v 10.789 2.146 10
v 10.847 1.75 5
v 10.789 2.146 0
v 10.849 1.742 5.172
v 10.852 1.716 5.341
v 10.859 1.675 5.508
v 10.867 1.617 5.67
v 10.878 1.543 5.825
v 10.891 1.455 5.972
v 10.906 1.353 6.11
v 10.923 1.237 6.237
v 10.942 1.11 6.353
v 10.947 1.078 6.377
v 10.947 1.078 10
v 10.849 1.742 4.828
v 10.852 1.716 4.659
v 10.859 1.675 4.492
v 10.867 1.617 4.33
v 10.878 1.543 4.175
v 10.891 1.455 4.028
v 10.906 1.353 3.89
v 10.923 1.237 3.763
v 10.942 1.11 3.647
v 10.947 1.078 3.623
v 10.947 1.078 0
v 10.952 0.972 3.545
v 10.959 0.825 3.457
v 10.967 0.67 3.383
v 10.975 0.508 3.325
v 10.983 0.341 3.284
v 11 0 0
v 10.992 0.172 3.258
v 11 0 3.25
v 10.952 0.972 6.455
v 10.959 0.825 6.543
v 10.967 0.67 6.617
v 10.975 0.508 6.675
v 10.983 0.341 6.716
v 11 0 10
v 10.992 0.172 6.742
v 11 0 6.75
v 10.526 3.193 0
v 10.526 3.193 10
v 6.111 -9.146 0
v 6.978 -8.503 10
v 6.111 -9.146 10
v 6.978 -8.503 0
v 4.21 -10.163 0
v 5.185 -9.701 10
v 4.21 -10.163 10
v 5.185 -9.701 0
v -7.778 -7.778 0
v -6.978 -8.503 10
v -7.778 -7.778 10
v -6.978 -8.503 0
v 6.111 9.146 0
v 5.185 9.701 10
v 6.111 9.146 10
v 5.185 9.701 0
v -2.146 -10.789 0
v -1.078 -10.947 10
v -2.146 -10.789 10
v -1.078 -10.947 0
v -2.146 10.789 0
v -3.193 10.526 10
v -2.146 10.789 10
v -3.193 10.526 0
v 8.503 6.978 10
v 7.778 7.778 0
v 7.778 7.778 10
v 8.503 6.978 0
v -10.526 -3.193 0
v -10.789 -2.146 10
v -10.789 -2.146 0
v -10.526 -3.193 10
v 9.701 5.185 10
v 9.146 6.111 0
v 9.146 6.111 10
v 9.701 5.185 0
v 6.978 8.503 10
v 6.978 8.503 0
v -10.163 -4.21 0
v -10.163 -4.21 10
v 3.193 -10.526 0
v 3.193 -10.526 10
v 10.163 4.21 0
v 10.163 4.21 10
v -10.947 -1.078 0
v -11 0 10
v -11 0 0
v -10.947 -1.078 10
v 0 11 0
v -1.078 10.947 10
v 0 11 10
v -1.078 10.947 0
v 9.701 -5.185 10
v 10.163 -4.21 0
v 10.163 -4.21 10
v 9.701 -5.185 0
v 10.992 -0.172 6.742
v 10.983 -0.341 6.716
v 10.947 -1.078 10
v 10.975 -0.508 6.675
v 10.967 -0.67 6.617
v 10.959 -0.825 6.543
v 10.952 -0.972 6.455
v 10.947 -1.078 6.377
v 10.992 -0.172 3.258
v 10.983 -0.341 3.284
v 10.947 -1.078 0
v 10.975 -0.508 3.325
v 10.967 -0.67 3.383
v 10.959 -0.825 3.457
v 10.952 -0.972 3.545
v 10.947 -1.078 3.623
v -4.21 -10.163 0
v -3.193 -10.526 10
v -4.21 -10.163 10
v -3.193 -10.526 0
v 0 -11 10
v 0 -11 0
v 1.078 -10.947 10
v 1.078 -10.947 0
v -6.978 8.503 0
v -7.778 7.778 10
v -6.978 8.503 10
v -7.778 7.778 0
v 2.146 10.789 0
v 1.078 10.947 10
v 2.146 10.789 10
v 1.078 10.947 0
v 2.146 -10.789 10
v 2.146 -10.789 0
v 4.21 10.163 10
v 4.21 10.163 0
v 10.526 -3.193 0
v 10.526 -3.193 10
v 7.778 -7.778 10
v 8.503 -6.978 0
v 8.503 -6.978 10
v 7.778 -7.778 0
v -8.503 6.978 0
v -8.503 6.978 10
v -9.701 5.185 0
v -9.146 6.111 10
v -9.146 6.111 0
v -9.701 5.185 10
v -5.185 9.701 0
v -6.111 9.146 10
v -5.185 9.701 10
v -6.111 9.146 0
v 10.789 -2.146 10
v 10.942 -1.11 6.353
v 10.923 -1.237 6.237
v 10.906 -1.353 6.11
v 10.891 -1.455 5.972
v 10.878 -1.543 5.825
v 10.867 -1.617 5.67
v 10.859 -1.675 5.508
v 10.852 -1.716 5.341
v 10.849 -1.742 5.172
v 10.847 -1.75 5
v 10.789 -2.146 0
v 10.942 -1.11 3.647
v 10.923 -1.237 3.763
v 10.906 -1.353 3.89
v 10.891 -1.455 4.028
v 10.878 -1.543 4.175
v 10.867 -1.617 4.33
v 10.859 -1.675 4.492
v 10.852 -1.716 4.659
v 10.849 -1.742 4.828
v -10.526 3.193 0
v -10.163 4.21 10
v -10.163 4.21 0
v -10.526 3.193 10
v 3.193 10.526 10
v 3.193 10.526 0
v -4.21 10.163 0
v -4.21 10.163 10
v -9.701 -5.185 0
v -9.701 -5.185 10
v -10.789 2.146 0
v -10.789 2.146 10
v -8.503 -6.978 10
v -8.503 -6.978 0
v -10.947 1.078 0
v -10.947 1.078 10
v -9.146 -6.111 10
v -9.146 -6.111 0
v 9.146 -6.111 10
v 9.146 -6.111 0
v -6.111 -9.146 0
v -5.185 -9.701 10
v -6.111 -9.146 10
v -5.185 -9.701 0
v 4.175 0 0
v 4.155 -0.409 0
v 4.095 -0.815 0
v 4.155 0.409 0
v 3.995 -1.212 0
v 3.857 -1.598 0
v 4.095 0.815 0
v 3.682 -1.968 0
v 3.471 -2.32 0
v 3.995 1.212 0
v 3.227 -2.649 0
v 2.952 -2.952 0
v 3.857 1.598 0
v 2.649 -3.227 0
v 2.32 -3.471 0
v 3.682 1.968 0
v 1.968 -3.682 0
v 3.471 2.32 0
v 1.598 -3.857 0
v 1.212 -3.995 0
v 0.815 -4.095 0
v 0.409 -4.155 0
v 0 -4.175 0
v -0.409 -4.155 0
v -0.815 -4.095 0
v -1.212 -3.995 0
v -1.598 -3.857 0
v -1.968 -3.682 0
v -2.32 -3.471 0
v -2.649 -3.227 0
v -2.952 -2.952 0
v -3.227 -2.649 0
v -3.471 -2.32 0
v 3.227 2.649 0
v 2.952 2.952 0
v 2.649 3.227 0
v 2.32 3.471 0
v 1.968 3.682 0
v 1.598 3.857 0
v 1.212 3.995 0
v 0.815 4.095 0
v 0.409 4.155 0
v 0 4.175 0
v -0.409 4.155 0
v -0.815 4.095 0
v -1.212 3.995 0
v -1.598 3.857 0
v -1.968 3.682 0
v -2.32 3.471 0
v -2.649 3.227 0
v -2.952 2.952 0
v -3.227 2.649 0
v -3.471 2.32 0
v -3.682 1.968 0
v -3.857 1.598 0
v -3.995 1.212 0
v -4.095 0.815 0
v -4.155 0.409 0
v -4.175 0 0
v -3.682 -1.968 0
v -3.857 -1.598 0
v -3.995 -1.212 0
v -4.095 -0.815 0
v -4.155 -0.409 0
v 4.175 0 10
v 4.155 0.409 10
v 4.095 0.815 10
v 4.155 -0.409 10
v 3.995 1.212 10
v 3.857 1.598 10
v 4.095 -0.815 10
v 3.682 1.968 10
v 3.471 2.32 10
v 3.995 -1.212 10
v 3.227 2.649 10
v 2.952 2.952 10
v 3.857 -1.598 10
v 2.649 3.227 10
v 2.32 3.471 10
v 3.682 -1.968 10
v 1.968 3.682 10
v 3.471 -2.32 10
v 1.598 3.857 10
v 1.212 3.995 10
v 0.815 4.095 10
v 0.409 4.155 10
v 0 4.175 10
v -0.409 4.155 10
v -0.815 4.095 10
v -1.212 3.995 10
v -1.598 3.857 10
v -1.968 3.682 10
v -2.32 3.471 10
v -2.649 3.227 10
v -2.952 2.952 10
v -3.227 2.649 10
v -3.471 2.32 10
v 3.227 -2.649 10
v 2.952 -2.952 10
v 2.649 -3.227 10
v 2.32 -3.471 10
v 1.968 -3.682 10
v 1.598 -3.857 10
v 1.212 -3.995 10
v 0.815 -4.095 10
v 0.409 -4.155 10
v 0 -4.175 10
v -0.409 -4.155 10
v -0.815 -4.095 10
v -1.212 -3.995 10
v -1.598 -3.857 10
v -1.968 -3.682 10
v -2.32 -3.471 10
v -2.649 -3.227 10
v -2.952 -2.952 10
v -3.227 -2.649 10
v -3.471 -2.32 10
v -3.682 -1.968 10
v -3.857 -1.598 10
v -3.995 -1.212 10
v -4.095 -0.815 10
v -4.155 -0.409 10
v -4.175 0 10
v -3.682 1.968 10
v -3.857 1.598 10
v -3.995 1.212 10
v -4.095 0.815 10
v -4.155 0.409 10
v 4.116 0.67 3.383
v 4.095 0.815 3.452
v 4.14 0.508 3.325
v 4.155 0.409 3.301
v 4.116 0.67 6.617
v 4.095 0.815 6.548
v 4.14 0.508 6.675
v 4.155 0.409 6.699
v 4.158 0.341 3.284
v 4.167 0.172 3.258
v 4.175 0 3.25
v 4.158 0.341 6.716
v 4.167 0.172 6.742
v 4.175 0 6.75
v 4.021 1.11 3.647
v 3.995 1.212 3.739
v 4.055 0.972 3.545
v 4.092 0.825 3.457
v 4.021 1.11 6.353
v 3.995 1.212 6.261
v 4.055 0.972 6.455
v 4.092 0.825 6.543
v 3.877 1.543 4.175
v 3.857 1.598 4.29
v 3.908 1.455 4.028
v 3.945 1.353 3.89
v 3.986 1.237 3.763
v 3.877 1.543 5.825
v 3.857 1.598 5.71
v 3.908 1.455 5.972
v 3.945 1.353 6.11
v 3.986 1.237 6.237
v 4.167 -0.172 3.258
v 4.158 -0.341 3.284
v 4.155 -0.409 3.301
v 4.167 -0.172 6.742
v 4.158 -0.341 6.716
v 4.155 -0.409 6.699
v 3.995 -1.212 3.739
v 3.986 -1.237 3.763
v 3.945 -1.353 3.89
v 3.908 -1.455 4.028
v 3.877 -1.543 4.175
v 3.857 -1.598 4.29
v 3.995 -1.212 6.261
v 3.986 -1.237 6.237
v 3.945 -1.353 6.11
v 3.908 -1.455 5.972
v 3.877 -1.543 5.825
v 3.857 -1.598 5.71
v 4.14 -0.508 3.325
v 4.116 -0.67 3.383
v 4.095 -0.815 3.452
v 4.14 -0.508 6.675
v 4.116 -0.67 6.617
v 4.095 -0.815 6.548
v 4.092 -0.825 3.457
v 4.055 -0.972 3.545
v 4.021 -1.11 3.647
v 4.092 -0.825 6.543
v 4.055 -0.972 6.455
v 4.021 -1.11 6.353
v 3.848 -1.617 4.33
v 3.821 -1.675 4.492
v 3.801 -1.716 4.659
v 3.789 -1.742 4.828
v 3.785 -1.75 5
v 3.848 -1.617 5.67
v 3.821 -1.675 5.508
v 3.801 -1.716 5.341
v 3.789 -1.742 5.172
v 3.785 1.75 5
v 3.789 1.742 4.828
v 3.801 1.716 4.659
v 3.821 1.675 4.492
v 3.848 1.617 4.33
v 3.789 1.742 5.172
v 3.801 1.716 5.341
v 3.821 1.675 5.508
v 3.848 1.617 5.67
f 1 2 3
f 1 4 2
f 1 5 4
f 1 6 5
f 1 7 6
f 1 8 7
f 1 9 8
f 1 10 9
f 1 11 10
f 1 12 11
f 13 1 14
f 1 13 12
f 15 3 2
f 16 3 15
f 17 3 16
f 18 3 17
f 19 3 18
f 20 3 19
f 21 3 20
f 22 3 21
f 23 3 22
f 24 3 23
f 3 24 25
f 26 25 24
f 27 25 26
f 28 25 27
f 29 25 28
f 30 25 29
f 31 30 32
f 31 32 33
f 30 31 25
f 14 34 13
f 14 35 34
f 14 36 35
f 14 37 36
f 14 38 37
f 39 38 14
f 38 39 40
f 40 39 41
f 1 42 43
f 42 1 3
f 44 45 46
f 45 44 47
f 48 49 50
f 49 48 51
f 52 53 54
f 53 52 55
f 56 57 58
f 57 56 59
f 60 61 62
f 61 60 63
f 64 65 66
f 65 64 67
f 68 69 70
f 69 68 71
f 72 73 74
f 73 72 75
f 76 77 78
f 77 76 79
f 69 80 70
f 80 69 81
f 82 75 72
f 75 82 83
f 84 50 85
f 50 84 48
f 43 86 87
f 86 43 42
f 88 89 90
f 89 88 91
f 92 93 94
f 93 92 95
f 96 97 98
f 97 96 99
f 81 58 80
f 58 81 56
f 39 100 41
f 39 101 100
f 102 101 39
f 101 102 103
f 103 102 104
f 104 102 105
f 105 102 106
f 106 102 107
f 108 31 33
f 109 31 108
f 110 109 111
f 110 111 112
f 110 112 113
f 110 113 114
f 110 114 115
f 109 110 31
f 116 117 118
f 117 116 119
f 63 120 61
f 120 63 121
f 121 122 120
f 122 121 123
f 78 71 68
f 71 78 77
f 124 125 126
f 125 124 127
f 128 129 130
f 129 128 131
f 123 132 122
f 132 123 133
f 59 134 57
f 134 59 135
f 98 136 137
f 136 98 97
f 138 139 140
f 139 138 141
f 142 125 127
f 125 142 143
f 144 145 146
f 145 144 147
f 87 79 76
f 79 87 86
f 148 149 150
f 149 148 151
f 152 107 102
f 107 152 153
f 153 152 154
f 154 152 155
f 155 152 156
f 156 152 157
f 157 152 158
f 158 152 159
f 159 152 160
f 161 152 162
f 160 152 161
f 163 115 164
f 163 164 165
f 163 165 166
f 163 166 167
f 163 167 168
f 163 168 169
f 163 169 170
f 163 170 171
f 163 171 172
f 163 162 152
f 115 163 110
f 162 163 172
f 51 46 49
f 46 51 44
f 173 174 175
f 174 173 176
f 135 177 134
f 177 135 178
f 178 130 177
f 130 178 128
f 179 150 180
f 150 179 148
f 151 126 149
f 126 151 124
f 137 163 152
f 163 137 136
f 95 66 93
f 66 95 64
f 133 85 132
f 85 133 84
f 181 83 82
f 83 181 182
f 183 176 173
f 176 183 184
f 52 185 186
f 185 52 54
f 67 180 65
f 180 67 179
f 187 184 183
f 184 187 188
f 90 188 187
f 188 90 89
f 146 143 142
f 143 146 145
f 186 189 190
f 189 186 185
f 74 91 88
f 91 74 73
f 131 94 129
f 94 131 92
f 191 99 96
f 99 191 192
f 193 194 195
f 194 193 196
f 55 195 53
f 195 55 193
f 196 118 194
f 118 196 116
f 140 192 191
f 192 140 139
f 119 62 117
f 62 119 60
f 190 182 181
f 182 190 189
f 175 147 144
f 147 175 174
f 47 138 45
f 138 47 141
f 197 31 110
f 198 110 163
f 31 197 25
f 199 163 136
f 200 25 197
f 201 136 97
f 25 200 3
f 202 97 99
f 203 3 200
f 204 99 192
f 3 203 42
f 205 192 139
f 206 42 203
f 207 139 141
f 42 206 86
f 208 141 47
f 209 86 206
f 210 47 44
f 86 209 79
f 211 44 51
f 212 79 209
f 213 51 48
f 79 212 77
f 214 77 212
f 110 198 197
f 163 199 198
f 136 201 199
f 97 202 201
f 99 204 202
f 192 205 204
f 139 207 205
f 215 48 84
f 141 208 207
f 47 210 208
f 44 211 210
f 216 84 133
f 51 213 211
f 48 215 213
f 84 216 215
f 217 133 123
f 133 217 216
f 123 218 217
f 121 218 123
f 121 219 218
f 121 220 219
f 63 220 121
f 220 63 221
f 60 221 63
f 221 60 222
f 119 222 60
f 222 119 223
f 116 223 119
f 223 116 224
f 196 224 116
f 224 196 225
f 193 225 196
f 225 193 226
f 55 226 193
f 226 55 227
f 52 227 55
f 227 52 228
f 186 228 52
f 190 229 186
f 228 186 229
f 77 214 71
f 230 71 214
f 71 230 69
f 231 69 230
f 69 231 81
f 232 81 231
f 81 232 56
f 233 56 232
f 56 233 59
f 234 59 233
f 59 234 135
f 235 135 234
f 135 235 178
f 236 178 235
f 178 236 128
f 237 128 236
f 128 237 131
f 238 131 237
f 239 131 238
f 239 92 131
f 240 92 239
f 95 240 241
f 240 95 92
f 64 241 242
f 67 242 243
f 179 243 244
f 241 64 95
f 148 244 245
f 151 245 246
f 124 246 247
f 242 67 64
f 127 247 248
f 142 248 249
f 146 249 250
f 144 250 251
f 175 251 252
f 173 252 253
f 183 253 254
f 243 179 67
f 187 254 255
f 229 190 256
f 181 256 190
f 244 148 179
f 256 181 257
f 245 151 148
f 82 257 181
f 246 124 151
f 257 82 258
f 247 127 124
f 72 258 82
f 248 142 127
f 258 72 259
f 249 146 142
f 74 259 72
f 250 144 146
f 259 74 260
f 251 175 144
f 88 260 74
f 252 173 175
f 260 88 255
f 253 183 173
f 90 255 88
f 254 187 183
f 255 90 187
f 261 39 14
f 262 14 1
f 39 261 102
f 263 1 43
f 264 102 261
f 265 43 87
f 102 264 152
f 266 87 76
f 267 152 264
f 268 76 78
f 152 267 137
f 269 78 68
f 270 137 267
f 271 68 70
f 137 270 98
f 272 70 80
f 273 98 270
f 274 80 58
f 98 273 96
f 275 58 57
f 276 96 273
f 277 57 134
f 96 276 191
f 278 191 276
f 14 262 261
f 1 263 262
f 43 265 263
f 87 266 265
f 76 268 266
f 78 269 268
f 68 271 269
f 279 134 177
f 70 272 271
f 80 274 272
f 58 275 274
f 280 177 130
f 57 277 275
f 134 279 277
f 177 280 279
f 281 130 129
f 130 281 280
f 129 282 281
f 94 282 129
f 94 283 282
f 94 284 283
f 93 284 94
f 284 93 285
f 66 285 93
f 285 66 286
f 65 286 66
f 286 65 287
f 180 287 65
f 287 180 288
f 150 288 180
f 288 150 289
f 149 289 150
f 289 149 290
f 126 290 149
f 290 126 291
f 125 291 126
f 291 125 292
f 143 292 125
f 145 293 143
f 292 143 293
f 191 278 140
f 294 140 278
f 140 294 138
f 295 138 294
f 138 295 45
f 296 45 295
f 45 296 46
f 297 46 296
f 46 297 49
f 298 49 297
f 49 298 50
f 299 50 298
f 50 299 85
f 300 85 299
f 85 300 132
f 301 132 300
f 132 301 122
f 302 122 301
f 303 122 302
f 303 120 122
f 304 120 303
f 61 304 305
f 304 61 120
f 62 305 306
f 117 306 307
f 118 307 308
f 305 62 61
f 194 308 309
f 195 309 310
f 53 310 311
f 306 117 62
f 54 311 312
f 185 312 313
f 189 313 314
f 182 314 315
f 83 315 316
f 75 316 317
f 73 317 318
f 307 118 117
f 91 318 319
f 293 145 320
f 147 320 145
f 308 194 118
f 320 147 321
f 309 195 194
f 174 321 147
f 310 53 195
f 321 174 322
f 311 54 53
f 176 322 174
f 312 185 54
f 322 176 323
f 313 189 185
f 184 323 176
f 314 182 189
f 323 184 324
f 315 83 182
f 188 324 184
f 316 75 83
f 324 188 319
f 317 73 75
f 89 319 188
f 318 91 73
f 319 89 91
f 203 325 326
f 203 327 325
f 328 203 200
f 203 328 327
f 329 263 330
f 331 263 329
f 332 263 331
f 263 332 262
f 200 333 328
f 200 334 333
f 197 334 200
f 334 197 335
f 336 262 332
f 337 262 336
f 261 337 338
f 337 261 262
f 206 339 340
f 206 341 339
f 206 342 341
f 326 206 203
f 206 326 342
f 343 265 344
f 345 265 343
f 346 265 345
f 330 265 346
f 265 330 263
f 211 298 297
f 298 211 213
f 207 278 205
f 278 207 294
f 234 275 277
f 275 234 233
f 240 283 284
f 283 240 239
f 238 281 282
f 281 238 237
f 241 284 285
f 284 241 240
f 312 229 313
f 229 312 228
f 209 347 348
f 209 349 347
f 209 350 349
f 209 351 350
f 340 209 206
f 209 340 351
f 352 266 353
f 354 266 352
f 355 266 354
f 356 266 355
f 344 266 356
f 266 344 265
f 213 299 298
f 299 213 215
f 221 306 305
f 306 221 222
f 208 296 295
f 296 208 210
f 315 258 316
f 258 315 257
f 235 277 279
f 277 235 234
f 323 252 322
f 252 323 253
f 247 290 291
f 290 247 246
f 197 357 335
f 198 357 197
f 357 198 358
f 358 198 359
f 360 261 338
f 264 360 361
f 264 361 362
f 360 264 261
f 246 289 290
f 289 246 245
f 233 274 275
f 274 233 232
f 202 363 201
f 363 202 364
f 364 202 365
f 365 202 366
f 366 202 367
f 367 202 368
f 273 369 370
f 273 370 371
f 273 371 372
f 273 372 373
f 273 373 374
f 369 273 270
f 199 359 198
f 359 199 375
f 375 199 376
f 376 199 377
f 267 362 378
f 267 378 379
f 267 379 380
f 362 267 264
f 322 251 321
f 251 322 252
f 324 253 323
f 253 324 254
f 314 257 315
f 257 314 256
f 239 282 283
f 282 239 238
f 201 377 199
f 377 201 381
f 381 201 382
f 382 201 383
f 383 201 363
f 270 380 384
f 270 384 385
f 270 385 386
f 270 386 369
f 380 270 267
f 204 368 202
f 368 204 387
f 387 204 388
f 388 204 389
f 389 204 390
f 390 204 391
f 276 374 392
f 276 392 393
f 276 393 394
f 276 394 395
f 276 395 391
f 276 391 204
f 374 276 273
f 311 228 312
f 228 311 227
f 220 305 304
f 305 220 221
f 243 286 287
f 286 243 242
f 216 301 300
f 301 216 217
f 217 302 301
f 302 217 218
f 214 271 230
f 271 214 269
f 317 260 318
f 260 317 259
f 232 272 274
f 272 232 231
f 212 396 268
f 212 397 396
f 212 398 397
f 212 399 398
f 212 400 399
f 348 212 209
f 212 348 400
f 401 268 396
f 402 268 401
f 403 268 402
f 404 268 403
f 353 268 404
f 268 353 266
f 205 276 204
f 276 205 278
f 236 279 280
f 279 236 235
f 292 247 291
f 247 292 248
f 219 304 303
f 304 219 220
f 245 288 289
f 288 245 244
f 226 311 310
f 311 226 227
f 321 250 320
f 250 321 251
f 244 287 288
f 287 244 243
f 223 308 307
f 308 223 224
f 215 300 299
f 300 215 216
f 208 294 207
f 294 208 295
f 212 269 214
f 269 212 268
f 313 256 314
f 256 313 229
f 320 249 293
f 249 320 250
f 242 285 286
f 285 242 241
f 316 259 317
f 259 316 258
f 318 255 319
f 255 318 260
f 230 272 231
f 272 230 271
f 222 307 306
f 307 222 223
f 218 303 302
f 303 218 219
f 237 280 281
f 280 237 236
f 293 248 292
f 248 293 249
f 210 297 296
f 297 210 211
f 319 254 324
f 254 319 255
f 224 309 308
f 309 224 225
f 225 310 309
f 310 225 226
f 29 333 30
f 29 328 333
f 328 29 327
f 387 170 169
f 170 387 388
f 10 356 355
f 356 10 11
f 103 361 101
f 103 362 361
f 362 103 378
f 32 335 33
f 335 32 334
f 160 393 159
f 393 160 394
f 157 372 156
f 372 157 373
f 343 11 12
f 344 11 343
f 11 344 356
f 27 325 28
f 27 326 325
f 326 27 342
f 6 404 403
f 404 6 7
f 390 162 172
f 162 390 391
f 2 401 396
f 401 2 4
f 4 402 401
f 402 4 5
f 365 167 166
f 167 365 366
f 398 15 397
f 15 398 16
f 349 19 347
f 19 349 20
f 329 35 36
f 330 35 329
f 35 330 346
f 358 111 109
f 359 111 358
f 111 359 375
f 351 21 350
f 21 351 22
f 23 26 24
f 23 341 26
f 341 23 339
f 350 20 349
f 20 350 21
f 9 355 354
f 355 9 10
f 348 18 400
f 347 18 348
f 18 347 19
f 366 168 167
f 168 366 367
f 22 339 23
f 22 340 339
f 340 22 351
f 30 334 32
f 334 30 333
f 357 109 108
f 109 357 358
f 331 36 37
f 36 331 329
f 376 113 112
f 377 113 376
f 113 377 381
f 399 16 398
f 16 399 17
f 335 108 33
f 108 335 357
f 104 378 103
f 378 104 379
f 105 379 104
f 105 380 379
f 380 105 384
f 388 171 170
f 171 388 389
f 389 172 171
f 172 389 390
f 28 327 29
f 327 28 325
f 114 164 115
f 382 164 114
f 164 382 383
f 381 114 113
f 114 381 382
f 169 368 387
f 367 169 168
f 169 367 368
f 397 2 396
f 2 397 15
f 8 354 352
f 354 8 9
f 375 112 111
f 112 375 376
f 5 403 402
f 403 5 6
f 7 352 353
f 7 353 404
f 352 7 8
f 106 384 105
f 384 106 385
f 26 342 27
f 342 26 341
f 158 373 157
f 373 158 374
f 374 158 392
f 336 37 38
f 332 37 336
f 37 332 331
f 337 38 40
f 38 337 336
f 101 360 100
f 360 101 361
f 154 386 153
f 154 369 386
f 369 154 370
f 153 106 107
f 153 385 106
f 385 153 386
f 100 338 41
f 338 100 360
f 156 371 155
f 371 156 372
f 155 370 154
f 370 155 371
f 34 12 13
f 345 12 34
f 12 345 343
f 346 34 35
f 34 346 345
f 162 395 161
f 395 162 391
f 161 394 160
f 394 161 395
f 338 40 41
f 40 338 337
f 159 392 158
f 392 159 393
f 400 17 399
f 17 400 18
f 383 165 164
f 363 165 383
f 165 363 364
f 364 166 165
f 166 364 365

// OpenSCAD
// file: parameters.scad
// =============================================================================
// Gen-X Vernier flux-claw dual-gap AFPM — WOUND-AWARE (HARD GATE)
// Dual-rotor + vernier 8+8 Ø20 + Ø5 flux claws; evolution of Gen-U
// =============================================================================

wire_awg            = 26;
wire_od             = 0.45;
turns               = 135;
fill                = 0.70;
layers_per_face     = 2;
wind_build_axial    = layers_per_face * wire_od * fill;   // 0.63
wind_build_radial   = 3 * wire_od * fill;                 // 0.945

coil_id_r           = 22.0;
coil_od_r           = 57.0;
span_deg            = 25.0;     // 12 stations; vernier vs 16-pole equiv
former_web          = 2.4;
flange_t            = 0.80;
wall                = 1.2;
slot_w              = 2.4;
mount_hole          = 3.5;
tab_len             = 7.0;

former_bare_h       = former_web + 2 * flange_t;            // 4.0
coil_envelope_h     = former_bare_h + 2 * wind_build_axial; // 5.26

run_clear           = 0.75;
gap_spacer_h        = run_clear + wind_build_axial;         // 1.38
m2m                 = coil_envelope_h + 2 * run_clear;      // 6.76 (≤6.8)

coil_stations       = 12;
bay_r_in            = coil_id_r - 2.0 - wind_build_radial;
bay_r_out           = coil_od_r + 2.0 + wind_build_radial;
bay_span            = span_deg + 4.0;
bay_offset          = 2.0;
stator_thick        = former_bare_h;
stator_od           = 156.0;
shaft_clear_stator  = 36.0;
coil_mount_r        = 28.0;

// Dual rotors: 8+8 Ø20 vernier poles + 24+24 Ø5 flux claws / edge assists
large_pocket_d      = 20.3;
small_pocket_d      = 5.3;
pocket_h            = 5.2;
large_n             = 8;
R_large             = 50.0;
R_claw_inner        = 36.0;
R_claw_mid          = 50.0;
R_claw_outer        = 64.0;
carrier_od          = 152.0;
carrier_thick       = 7.5;
hub_h               = 10.0;
hub_od              = 30.0;
rotor_b_offset_deg  = 22.5;

shaft_bore          = 8.35;
bearing_d           = 21.85;
bearing_h           = 7.2;
m3_clear            = 3.5;
bolt_r_inner        = 36.0;
bolt_n_inner        = 6;
flange_bolt_r       = 72.0;
flange_bolt_n       = 6;
brace_r             = 68.0;
brace_d             = 4.3;
brace_n             = 4;

spacer_pad_od       = 14.0;
spacer_pad_id       = m3_clear;
endbell_od          = 156.0;
endbell_thick       = 8.0;
endbell_shaft_clear = 10.0;

$fn = 64;
// main file
// Gen-X shaft collar — print ×2–4
include <parameters.scad>;
$fn = 64;
od = 22; id = shaft_bore; h = 10; set_d = 3.5;
difference() {
    cylinder(d=od, h=h);
    translate([0, 0, -0.1]) cylinder(d=id, h=h + 0.2);
    translate([0, 0, h/2]) rotate([0, 90, 0]) cylinder(d=set_d, h=od);
}
